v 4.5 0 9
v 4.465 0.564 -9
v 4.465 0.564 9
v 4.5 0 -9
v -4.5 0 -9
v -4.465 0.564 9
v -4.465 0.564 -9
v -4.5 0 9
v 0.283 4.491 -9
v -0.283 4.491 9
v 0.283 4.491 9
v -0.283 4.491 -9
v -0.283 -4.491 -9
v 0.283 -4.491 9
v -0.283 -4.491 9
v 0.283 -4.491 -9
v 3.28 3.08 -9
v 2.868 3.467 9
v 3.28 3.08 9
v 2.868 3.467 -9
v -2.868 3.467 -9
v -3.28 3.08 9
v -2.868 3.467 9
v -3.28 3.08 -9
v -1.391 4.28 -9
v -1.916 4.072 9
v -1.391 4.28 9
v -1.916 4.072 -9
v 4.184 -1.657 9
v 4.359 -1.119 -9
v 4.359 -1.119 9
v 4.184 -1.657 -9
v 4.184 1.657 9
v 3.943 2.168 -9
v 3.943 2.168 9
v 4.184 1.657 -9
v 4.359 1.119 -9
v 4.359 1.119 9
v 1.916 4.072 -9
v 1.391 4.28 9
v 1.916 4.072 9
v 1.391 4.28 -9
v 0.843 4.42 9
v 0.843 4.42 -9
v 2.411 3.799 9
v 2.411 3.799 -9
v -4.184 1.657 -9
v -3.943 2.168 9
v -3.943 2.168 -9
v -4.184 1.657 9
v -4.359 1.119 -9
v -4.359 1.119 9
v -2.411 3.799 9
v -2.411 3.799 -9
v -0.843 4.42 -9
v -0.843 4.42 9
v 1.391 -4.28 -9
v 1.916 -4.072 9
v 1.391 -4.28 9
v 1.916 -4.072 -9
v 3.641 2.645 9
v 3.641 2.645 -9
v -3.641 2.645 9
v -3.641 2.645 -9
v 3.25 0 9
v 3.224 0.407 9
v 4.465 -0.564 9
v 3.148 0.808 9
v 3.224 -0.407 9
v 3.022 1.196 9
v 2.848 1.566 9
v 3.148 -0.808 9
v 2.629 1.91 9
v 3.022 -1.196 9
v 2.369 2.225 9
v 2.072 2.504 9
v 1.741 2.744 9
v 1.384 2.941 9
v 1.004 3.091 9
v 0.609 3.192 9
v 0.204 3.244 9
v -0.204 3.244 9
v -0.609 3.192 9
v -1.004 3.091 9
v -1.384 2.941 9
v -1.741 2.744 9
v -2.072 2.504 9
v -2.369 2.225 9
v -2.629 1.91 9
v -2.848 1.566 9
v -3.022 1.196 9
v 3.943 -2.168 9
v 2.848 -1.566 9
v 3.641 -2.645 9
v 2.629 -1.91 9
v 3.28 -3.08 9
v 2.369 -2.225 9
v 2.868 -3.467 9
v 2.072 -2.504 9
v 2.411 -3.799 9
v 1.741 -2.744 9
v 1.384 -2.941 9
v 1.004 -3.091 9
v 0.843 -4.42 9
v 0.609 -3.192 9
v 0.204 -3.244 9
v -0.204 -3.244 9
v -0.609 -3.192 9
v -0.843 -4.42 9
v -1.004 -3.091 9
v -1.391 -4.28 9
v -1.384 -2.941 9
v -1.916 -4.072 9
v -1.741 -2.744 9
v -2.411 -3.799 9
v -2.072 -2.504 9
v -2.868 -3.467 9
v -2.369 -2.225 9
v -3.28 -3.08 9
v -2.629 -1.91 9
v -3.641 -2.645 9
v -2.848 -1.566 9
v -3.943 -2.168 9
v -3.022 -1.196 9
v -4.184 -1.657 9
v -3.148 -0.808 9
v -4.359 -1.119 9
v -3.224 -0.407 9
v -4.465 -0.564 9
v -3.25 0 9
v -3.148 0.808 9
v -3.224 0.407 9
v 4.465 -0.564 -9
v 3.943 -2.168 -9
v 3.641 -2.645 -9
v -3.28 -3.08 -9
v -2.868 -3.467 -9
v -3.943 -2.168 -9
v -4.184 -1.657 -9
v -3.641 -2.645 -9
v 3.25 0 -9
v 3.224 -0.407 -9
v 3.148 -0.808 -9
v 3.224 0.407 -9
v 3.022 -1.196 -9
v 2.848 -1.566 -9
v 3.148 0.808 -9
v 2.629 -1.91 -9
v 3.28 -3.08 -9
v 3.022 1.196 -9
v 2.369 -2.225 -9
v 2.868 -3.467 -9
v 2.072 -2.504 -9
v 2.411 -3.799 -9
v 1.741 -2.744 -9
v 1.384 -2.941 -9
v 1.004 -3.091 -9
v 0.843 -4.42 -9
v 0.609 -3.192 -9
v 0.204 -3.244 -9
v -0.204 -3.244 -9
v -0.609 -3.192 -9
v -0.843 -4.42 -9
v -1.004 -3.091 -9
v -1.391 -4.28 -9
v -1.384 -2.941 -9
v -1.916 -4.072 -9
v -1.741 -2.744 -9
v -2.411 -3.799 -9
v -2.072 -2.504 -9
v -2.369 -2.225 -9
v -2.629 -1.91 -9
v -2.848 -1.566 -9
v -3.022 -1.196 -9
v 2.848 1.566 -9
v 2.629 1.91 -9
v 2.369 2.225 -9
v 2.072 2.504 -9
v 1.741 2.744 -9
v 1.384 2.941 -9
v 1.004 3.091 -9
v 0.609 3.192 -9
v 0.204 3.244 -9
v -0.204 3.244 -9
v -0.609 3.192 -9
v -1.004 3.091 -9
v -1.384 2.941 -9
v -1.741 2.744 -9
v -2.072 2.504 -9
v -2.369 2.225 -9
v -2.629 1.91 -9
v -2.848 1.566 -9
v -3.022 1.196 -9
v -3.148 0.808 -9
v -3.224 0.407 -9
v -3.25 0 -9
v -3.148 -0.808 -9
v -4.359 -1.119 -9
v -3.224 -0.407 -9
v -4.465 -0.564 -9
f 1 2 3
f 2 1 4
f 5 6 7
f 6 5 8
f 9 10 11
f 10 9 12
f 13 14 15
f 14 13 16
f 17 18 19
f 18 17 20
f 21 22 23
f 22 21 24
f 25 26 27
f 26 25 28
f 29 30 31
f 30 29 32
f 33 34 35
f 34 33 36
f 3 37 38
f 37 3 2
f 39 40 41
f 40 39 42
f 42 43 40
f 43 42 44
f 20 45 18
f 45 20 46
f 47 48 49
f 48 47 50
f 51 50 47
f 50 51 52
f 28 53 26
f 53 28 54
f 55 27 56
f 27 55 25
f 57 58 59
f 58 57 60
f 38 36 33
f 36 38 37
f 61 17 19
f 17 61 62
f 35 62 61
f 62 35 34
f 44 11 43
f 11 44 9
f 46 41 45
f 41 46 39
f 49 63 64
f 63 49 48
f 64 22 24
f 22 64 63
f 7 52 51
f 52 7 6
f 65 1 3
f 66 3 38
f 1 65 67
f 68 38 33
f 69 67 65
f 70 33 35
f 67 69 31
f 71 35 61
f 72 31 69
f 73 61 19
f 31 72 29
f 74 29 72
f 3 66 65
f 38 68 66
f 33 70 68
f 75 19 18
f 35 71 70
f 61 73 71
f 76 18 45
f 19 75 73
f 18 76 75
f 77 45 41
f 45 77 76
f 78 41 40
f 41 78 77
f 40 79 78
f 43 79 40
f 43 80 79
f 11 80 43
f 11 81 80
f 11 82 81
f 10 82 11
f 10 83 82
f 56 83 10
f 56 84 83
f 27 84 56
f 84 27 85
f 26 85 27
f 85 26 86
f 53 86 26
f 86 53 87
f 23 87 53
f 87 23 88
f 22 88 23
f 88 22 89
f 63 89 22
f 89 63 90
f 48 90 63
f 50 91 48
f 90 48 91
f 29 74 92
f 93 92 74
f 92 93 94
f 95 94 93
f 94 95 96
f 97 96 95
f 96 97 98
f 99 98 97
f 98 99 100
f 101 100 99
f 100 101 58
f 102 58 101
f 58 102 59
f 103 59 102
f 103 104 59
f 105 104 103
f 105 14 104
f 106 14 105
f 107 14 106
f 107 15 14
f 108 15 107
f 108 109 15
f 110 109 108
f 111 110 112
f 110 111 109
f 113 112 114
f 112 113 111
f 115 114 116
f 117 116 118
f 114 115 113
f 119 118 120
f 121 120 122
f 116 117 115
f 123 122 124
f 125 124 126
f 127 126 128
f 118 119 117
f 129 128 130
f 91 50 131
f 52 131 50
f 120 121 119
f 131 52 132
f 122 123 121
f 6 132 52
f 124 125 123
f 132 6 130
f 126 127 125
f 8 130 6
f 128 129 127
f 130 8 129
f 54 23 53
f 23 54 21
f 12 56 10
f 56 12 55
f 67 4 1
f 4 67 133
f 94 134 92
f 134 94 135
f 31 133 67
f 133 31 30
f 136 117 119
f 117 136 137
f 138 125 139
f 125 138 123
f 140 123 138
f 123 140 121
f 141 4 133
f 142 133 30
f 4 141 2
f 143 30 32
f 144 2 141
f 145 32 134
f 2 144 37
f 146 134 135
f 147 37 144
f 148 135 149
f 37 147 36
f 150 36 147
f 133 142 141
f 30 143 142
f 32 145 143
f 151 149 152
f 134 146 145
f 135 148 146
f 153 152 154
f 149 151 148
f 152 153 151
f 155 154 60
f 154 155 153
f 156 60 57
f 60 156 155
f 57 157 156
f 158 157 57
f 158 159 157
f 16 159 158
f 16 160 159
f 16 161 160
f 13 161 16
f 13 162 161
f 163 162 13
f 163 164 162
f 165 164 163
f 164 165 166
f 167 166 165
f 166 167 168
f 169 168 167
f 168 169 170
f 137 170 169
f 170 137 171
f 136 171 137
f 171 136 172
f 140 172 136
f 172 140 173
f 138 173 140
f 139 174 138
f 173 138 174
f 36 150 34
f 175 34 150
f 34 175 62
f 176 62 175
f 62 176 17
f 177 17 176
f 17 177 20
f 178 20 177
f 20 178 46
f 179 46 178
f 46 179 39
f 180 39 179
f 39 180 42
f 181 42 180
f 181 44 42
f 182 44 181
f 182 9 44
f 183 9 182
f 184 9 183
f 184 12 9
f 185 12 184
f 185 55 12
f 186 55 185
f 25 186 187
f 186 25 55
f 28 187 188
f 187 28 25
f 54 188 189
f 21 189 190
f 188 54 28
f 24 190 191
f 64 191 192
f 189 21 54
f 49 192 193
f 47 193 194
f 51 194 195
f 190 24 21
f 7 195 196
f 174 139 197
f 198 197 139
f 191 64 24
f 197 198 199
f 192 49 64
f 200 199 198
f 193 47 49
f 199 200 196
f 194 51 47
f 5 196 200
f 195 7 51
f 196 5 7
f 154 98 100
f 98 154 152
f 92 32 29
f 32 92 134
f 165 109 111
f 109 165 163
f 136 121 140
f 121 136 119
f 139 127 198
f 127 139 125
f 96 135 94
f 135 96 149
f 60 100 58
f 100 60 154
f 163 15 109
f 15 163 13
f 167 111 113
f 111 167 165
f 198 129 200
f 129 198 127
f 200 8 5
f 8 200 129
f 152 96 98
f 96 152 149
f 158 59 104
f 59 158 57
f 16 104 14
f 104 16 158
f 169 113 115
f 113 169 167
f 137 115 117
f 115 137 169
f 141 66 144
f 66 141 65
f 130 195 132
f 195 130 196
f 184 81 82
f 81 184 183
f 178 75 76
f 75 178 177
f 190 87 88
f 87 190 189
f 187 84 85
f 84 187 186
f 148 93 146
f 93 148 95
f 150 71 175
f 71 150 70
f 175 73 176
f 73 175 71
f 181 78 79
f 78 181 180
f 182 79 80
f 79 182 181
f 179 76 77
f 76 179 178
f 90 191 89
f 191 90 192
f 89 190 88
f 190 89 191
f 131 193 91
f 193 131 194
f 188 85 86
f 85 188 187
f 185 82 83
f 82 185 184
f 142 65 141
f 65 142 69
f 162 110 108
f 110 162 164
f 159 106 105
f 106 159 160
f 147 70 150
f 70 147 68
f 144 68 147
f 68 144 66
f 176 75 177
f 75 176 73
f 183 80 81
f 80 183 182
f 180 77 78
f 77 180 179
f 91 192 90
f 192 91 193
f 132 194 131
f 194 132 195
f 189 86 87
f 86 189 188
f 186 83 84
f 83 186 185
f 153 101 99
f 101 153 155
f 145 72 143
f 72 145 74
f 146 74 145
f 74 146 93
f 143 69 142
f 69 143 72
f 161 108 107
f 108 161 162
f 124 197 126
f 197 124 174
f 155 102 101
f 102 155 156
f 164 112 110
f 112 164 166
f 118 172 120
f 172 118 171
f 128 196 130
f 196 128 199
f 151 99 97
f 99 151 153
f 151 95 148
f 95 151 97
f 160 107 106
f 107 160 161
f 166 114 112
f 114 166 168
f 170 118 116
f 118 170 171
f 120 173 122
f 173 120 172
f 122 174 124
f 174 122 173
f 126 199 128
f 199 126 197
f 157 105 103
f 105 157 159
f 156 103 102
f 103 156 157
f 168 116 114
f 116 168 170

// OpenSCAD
$fn = 50;


difference() {
	union() {
		translate(v = [0, 0, -9.0000000000]) {
			cylinder(h = 18, r = 4.5000000000);
		}
	}
	union() {
		translate(v = [0, 0, -100.0000000000]) {
			cylinder(h = 200, r = 3.2500000000);
		}
	}
}
